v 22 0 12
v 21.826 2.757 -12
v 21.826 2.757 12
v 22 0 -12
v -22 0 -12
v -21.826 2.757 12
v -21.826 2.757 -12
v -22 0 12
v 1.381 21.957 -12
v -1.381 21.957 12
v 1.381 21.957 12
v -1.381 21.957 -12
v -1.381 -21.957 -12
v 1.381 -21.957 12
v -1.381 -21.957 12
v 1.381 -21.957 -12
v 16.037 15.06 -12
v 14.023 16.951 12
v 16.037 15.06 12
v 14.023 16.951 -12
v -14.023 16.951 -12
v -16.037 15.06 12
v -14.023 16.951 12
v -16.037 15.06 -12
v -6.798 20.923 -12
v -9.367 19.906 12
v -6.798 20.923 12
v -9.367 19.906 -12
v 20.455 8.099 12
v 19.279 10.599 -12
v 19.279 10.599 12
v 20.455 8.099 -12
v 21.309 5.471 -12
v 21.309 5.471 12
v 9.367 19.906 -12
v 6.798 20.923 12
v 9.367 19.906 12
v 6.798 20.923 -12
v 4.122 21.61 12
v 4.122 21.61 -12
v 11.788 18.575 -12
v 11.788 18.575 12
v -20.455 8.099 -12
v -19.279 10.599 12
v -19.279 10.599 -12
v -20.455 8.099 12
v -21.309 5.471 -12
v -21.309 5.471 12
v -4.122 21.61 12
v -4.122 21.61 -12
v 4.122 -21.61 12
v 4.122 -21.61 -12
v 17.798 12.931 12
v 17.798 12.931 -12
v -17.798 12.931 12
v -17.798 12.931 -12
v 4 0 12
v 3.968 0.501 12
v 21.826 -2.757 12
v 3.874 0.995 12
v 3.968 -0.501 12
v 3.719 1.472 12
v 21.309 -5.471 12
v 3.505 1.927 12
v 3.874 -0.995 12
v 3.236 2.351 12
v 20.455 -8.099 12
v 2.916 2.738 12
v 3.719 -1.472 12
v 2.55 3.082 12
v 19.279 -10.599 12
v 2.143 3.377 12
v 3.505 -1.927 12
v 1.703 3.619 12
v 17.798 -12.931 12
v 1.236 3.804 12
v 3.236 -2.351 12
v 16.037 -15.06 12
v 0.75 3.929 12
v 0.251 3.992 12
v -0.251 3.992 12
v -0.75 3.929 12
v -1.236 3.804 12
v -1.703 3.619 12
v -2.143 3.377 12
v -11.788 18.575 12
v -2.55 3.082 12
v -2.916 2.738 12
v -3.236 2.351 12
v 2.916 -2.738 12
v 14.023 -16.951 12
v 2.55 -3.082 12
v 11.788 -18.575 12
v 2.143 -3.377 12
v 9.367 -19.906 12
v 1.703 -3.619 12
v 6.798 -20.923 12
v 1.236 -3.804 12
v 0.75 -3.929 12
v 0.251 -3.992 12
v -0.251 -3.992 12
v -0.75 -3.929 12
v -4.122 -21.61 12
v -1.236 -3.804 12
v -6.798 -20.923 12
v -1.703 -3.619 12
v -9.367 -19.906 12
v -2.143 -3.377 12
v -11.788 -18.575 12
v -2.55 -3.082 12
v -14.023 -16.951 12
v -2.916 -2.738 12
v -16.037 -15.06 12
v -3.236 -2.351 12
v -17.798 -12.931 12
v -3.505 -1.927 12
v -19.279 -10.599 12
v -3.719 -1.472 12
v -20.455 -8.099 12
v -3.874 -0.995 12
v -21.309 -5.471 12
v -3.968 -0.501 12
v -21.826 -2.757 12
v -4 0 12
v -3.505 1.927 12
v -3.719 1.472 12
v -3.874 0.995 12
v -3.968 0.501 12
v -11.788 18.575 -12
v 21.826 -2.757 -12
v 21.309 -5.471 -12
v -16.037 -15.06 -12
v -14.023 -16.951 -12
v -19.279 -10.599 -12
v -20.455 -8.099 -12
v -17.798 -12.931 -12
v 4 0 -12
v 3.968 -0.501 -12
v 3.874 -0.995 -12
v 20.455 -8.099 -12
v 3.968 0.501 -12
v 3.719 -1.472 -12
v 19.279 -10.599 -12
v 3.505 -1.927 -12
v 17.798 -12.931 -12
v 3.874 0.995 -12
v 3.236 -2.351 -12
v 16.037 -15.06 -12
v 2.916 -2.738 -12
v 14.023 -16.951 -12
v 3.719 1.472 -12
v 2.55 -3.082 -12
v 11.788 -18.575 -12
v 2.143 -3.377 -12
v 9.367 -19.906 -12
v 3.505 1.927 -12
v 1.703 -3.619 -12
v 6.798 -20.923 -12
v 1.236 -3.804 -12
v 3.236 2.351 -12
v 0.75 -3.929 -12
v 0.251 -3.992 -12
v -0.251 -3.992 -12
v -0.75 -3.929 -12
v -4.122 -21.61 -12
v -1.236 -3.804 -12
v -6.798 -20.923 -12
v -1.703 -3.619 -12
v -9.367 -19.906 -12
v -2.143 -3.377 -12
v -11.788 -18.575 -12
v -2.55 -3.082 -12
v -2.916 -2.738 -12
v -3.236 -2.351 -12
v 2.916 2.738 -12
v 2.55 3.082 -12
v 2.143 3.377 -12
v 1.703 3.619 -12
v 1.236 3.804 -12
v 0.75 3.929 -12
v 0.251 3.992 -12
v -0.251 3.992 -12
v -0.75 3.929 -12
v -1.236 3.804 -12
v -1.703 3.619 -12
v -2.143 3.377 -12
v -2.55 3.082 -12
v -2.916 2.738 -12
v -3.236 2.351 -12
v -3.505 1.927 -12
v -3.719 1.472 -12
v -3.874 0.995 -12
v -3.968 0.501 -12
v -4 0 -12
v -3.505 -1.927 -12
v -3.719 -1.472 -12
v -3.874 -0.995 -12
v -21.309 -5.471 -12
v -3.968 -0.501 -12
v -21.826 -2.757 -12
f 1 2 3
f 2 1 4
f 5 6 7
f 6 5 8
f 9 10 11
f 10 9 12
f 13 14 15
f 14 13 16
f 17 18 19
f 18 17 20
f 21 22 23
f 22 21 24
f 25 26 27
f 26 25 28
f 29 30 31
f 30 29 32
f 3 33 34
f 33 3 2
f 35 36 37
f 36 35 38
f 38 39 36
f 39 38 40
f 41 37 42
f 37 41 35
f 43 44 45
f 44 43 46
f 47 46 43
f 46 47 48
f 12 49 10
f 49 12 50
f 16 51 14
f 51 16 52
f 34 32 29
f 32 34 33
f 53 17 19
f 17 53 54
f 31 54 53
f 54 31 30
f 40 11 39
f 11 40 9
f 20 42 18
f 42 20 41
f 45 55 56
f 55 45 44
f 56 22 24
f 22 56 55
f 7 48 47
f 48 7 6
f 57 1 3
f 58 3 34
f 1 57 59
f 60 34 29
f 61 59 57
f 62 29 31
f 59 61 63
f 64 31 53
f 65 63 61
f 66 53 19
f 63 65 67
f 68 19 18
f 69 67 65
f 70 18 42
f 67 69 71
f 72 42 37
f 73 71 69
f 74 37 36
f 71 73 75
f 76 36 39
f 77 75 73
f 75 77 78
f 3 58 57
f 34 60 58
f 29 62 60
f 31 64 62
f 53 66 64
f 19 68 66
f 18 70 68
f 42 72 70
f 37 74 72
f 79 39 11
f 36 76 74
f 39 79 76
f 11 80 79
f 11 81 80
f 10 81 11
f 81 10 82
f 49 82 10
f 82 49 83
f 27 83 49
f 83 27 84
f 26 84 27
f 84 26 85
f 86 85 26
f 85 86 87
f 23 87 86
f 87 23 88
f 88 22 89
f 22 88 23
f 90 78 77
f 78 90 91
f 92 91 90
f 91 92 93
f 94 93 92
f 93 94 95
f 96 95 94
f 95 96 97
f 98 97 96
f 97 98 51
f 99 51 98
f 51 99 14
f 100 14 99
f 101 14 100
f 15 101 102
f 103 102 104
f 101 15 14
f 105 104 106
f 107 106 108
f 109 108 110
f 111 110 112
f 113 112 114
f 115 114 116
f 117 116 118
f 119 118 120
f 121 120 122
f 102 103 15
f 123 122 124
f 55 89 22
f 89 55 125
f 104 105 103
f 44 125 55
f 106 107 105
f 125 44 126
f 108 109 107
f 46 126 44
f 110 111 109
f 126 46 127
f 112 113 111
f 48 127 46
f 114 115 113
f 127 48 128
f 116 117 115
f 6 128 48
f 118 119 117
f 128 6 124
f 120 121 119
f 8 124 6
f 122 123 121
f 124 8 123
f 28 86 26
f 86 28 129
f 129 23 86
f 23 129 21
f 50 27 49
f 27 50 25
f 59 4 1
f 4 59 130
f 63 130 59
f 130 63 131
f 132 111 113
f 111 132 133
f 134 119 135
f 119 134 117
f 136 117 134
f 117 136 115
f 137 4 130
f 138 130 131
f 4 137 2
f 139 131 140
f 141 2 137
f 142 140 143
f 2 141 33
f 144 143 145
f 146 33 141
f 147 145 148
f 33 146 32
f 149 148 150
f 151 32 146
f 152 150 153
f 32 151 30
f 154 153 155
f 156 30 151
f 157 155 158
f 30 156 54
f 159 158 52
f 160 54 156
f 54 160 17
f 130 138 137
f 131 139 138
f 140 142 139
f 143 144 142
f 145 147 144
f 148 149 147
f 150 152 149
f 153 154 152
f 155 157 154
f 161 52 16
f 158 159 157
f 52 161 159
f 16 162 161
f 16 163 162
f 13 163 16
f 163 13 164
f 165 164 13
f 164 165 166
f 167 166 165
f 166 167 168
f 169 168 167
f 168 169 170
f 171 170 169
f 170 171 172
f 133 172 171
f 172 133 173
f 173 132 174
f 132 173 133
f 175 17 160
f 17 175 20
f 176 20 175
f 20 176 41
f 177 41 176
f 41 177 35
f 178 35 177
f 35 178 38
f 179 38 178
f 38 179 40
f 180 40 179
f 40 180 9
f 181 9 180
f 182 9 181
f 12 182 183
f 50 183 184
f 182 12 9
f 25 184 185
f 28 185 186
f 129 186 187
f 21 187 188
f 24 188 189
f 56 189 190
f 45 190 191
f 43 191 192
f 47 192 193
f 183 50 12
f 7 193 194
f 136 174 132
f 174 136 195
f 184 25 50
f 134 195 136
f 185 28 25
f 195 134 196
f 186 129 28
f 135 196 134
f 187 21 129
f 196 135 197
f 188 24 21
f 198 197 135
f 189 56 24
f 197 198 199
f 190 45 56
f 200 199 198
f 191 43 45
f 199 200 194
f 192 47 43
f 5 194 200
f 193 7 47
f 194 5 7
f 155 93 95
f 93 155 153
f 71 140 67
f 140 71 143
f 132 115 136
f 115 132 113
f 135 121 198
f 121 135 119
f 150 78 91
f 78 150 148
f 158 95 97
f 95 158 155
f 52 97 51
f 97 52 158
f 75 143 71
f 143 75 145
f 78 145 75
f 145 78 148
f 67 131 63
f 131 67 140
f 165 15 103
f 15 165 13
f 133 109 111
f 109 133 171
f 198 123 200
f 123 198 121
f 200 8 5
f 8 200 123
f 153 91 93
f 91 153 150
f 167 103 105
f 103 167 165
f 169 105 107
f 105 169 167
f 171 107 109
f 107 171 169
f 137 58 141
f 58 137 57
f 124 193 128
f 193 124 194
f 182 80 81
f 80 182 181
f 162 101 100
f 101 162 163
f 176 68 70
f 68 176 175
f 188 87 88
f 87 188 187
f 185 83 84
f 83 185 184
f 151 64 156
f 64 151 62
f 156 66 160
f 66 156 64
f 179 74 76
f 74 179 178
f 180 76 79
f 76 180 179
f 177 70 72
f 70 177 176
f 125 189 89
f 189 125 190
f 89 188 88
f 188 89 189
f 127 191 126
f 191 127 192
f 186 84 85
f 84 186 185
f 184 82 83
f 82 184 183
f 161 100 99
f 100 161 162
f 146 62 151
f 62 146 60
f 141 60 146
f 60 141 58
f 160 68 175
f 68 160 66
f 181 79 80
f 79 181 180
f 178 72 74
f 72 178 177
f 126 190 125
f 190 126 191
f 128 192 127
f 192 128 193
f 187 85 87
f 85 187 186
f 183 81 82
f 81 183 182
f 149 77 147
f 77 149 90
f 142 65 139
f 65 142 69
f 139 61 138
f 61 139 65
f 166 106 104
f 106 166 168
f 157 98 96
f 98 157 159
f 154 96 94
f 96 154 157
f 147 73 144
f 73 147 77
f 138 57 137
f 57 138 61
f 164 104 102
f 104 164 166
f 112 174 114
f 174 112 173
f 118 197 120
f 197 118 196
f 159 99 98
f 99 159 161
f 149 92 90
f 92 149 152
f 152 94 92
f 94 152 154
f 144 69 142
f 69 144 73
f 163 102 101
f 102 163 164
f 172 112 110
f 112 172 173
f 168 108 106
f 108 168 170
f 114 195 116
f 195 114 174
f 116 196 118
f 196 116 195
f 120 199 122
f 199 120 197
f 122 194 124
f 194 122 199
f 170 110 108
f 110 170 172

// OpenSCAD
$fn = 50;


difference() {
	union() {
		translate(v = [0, 0, -12.0000000000]) {
			cylinder(h = 24, r = 22.0000000000);
		}
	}
	union() {
		translate(v = [0, 0, -100.0000000000]) {
			cylinder(h = 200, r = 4);
		}
	}
}
